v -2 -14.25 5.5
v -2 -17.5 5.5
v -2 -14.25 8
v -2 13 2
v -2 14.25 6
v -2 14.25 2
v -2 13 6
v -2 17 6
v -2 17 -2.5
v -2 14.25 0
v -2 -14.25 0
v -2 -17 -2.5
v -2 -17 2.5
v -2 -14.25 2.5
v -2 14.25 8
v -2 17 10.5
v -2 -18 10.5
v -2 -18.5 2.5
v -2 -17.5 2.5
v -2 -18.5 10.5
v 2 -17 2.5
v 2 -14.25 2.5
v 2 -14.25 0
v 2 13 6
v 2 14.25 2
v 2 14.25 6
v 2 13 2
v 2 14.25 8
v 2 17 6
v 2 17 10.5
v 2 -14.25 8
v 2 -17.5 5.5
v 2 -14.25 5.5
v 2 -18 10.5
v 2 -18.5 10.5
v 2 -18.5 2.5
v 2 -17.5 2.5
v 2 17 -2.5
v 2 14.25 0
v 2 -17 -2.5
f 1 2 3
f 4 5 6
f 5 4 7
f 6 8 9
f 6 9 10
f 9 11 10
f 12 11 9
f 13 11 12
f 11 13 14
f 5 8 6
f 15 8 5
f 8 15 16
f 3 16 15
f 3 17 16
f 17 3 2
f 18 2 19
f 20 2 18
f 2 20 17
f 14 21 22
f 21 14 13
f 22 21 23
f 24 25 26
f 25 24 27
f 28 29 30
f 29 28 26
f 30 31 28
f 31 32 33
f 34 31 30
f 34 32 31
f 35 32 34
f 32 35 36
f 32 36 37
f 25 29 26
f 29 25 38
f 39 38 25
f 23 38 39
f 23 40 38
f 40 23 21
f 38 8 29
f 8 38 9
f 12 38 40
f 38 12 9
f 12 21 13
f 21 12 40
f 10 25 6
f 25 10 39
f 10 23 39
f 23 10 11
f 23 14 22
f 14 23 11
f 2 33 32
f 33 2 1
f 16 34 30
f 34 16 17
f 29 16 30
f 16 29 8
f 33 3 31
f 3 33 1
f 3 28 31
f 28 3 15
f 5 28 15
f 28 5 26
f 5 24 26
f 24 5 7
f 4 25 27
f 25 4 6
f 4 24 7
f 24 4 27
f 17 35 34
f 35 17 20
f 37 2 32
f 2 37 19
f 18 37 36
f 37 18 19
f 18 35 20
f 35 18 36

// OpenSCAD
difference() {
    // Bottom bracket base
    scale([4,34,5]) cube(1,1,1,center=true);
    
    // PCB craddle
    translate([0,0,1.25]) scale([4,28.5,2.5]) cube(1,1,1,center=true);
}

translate([0,0,8]) rotate([180,0,0]) difference() {
    // Top bracket base
    translate([0,.5,0]) scale([4,35,5]) cube(1,1,1,center=true);
    
    // PCB craddle
    translate([0,0,1.25]) scale([4,28.5,2.5]) cube(1,1,1,center=true);
}

// PCB bumper
translate([0,15,4]) scale([4,4,4]) cube(1,1,1,center=true);


difference() {
    // Clip lock
    translate([0,-18,6.5]) scale([4,1,8]) cube(1,1,1,center=true);
}
